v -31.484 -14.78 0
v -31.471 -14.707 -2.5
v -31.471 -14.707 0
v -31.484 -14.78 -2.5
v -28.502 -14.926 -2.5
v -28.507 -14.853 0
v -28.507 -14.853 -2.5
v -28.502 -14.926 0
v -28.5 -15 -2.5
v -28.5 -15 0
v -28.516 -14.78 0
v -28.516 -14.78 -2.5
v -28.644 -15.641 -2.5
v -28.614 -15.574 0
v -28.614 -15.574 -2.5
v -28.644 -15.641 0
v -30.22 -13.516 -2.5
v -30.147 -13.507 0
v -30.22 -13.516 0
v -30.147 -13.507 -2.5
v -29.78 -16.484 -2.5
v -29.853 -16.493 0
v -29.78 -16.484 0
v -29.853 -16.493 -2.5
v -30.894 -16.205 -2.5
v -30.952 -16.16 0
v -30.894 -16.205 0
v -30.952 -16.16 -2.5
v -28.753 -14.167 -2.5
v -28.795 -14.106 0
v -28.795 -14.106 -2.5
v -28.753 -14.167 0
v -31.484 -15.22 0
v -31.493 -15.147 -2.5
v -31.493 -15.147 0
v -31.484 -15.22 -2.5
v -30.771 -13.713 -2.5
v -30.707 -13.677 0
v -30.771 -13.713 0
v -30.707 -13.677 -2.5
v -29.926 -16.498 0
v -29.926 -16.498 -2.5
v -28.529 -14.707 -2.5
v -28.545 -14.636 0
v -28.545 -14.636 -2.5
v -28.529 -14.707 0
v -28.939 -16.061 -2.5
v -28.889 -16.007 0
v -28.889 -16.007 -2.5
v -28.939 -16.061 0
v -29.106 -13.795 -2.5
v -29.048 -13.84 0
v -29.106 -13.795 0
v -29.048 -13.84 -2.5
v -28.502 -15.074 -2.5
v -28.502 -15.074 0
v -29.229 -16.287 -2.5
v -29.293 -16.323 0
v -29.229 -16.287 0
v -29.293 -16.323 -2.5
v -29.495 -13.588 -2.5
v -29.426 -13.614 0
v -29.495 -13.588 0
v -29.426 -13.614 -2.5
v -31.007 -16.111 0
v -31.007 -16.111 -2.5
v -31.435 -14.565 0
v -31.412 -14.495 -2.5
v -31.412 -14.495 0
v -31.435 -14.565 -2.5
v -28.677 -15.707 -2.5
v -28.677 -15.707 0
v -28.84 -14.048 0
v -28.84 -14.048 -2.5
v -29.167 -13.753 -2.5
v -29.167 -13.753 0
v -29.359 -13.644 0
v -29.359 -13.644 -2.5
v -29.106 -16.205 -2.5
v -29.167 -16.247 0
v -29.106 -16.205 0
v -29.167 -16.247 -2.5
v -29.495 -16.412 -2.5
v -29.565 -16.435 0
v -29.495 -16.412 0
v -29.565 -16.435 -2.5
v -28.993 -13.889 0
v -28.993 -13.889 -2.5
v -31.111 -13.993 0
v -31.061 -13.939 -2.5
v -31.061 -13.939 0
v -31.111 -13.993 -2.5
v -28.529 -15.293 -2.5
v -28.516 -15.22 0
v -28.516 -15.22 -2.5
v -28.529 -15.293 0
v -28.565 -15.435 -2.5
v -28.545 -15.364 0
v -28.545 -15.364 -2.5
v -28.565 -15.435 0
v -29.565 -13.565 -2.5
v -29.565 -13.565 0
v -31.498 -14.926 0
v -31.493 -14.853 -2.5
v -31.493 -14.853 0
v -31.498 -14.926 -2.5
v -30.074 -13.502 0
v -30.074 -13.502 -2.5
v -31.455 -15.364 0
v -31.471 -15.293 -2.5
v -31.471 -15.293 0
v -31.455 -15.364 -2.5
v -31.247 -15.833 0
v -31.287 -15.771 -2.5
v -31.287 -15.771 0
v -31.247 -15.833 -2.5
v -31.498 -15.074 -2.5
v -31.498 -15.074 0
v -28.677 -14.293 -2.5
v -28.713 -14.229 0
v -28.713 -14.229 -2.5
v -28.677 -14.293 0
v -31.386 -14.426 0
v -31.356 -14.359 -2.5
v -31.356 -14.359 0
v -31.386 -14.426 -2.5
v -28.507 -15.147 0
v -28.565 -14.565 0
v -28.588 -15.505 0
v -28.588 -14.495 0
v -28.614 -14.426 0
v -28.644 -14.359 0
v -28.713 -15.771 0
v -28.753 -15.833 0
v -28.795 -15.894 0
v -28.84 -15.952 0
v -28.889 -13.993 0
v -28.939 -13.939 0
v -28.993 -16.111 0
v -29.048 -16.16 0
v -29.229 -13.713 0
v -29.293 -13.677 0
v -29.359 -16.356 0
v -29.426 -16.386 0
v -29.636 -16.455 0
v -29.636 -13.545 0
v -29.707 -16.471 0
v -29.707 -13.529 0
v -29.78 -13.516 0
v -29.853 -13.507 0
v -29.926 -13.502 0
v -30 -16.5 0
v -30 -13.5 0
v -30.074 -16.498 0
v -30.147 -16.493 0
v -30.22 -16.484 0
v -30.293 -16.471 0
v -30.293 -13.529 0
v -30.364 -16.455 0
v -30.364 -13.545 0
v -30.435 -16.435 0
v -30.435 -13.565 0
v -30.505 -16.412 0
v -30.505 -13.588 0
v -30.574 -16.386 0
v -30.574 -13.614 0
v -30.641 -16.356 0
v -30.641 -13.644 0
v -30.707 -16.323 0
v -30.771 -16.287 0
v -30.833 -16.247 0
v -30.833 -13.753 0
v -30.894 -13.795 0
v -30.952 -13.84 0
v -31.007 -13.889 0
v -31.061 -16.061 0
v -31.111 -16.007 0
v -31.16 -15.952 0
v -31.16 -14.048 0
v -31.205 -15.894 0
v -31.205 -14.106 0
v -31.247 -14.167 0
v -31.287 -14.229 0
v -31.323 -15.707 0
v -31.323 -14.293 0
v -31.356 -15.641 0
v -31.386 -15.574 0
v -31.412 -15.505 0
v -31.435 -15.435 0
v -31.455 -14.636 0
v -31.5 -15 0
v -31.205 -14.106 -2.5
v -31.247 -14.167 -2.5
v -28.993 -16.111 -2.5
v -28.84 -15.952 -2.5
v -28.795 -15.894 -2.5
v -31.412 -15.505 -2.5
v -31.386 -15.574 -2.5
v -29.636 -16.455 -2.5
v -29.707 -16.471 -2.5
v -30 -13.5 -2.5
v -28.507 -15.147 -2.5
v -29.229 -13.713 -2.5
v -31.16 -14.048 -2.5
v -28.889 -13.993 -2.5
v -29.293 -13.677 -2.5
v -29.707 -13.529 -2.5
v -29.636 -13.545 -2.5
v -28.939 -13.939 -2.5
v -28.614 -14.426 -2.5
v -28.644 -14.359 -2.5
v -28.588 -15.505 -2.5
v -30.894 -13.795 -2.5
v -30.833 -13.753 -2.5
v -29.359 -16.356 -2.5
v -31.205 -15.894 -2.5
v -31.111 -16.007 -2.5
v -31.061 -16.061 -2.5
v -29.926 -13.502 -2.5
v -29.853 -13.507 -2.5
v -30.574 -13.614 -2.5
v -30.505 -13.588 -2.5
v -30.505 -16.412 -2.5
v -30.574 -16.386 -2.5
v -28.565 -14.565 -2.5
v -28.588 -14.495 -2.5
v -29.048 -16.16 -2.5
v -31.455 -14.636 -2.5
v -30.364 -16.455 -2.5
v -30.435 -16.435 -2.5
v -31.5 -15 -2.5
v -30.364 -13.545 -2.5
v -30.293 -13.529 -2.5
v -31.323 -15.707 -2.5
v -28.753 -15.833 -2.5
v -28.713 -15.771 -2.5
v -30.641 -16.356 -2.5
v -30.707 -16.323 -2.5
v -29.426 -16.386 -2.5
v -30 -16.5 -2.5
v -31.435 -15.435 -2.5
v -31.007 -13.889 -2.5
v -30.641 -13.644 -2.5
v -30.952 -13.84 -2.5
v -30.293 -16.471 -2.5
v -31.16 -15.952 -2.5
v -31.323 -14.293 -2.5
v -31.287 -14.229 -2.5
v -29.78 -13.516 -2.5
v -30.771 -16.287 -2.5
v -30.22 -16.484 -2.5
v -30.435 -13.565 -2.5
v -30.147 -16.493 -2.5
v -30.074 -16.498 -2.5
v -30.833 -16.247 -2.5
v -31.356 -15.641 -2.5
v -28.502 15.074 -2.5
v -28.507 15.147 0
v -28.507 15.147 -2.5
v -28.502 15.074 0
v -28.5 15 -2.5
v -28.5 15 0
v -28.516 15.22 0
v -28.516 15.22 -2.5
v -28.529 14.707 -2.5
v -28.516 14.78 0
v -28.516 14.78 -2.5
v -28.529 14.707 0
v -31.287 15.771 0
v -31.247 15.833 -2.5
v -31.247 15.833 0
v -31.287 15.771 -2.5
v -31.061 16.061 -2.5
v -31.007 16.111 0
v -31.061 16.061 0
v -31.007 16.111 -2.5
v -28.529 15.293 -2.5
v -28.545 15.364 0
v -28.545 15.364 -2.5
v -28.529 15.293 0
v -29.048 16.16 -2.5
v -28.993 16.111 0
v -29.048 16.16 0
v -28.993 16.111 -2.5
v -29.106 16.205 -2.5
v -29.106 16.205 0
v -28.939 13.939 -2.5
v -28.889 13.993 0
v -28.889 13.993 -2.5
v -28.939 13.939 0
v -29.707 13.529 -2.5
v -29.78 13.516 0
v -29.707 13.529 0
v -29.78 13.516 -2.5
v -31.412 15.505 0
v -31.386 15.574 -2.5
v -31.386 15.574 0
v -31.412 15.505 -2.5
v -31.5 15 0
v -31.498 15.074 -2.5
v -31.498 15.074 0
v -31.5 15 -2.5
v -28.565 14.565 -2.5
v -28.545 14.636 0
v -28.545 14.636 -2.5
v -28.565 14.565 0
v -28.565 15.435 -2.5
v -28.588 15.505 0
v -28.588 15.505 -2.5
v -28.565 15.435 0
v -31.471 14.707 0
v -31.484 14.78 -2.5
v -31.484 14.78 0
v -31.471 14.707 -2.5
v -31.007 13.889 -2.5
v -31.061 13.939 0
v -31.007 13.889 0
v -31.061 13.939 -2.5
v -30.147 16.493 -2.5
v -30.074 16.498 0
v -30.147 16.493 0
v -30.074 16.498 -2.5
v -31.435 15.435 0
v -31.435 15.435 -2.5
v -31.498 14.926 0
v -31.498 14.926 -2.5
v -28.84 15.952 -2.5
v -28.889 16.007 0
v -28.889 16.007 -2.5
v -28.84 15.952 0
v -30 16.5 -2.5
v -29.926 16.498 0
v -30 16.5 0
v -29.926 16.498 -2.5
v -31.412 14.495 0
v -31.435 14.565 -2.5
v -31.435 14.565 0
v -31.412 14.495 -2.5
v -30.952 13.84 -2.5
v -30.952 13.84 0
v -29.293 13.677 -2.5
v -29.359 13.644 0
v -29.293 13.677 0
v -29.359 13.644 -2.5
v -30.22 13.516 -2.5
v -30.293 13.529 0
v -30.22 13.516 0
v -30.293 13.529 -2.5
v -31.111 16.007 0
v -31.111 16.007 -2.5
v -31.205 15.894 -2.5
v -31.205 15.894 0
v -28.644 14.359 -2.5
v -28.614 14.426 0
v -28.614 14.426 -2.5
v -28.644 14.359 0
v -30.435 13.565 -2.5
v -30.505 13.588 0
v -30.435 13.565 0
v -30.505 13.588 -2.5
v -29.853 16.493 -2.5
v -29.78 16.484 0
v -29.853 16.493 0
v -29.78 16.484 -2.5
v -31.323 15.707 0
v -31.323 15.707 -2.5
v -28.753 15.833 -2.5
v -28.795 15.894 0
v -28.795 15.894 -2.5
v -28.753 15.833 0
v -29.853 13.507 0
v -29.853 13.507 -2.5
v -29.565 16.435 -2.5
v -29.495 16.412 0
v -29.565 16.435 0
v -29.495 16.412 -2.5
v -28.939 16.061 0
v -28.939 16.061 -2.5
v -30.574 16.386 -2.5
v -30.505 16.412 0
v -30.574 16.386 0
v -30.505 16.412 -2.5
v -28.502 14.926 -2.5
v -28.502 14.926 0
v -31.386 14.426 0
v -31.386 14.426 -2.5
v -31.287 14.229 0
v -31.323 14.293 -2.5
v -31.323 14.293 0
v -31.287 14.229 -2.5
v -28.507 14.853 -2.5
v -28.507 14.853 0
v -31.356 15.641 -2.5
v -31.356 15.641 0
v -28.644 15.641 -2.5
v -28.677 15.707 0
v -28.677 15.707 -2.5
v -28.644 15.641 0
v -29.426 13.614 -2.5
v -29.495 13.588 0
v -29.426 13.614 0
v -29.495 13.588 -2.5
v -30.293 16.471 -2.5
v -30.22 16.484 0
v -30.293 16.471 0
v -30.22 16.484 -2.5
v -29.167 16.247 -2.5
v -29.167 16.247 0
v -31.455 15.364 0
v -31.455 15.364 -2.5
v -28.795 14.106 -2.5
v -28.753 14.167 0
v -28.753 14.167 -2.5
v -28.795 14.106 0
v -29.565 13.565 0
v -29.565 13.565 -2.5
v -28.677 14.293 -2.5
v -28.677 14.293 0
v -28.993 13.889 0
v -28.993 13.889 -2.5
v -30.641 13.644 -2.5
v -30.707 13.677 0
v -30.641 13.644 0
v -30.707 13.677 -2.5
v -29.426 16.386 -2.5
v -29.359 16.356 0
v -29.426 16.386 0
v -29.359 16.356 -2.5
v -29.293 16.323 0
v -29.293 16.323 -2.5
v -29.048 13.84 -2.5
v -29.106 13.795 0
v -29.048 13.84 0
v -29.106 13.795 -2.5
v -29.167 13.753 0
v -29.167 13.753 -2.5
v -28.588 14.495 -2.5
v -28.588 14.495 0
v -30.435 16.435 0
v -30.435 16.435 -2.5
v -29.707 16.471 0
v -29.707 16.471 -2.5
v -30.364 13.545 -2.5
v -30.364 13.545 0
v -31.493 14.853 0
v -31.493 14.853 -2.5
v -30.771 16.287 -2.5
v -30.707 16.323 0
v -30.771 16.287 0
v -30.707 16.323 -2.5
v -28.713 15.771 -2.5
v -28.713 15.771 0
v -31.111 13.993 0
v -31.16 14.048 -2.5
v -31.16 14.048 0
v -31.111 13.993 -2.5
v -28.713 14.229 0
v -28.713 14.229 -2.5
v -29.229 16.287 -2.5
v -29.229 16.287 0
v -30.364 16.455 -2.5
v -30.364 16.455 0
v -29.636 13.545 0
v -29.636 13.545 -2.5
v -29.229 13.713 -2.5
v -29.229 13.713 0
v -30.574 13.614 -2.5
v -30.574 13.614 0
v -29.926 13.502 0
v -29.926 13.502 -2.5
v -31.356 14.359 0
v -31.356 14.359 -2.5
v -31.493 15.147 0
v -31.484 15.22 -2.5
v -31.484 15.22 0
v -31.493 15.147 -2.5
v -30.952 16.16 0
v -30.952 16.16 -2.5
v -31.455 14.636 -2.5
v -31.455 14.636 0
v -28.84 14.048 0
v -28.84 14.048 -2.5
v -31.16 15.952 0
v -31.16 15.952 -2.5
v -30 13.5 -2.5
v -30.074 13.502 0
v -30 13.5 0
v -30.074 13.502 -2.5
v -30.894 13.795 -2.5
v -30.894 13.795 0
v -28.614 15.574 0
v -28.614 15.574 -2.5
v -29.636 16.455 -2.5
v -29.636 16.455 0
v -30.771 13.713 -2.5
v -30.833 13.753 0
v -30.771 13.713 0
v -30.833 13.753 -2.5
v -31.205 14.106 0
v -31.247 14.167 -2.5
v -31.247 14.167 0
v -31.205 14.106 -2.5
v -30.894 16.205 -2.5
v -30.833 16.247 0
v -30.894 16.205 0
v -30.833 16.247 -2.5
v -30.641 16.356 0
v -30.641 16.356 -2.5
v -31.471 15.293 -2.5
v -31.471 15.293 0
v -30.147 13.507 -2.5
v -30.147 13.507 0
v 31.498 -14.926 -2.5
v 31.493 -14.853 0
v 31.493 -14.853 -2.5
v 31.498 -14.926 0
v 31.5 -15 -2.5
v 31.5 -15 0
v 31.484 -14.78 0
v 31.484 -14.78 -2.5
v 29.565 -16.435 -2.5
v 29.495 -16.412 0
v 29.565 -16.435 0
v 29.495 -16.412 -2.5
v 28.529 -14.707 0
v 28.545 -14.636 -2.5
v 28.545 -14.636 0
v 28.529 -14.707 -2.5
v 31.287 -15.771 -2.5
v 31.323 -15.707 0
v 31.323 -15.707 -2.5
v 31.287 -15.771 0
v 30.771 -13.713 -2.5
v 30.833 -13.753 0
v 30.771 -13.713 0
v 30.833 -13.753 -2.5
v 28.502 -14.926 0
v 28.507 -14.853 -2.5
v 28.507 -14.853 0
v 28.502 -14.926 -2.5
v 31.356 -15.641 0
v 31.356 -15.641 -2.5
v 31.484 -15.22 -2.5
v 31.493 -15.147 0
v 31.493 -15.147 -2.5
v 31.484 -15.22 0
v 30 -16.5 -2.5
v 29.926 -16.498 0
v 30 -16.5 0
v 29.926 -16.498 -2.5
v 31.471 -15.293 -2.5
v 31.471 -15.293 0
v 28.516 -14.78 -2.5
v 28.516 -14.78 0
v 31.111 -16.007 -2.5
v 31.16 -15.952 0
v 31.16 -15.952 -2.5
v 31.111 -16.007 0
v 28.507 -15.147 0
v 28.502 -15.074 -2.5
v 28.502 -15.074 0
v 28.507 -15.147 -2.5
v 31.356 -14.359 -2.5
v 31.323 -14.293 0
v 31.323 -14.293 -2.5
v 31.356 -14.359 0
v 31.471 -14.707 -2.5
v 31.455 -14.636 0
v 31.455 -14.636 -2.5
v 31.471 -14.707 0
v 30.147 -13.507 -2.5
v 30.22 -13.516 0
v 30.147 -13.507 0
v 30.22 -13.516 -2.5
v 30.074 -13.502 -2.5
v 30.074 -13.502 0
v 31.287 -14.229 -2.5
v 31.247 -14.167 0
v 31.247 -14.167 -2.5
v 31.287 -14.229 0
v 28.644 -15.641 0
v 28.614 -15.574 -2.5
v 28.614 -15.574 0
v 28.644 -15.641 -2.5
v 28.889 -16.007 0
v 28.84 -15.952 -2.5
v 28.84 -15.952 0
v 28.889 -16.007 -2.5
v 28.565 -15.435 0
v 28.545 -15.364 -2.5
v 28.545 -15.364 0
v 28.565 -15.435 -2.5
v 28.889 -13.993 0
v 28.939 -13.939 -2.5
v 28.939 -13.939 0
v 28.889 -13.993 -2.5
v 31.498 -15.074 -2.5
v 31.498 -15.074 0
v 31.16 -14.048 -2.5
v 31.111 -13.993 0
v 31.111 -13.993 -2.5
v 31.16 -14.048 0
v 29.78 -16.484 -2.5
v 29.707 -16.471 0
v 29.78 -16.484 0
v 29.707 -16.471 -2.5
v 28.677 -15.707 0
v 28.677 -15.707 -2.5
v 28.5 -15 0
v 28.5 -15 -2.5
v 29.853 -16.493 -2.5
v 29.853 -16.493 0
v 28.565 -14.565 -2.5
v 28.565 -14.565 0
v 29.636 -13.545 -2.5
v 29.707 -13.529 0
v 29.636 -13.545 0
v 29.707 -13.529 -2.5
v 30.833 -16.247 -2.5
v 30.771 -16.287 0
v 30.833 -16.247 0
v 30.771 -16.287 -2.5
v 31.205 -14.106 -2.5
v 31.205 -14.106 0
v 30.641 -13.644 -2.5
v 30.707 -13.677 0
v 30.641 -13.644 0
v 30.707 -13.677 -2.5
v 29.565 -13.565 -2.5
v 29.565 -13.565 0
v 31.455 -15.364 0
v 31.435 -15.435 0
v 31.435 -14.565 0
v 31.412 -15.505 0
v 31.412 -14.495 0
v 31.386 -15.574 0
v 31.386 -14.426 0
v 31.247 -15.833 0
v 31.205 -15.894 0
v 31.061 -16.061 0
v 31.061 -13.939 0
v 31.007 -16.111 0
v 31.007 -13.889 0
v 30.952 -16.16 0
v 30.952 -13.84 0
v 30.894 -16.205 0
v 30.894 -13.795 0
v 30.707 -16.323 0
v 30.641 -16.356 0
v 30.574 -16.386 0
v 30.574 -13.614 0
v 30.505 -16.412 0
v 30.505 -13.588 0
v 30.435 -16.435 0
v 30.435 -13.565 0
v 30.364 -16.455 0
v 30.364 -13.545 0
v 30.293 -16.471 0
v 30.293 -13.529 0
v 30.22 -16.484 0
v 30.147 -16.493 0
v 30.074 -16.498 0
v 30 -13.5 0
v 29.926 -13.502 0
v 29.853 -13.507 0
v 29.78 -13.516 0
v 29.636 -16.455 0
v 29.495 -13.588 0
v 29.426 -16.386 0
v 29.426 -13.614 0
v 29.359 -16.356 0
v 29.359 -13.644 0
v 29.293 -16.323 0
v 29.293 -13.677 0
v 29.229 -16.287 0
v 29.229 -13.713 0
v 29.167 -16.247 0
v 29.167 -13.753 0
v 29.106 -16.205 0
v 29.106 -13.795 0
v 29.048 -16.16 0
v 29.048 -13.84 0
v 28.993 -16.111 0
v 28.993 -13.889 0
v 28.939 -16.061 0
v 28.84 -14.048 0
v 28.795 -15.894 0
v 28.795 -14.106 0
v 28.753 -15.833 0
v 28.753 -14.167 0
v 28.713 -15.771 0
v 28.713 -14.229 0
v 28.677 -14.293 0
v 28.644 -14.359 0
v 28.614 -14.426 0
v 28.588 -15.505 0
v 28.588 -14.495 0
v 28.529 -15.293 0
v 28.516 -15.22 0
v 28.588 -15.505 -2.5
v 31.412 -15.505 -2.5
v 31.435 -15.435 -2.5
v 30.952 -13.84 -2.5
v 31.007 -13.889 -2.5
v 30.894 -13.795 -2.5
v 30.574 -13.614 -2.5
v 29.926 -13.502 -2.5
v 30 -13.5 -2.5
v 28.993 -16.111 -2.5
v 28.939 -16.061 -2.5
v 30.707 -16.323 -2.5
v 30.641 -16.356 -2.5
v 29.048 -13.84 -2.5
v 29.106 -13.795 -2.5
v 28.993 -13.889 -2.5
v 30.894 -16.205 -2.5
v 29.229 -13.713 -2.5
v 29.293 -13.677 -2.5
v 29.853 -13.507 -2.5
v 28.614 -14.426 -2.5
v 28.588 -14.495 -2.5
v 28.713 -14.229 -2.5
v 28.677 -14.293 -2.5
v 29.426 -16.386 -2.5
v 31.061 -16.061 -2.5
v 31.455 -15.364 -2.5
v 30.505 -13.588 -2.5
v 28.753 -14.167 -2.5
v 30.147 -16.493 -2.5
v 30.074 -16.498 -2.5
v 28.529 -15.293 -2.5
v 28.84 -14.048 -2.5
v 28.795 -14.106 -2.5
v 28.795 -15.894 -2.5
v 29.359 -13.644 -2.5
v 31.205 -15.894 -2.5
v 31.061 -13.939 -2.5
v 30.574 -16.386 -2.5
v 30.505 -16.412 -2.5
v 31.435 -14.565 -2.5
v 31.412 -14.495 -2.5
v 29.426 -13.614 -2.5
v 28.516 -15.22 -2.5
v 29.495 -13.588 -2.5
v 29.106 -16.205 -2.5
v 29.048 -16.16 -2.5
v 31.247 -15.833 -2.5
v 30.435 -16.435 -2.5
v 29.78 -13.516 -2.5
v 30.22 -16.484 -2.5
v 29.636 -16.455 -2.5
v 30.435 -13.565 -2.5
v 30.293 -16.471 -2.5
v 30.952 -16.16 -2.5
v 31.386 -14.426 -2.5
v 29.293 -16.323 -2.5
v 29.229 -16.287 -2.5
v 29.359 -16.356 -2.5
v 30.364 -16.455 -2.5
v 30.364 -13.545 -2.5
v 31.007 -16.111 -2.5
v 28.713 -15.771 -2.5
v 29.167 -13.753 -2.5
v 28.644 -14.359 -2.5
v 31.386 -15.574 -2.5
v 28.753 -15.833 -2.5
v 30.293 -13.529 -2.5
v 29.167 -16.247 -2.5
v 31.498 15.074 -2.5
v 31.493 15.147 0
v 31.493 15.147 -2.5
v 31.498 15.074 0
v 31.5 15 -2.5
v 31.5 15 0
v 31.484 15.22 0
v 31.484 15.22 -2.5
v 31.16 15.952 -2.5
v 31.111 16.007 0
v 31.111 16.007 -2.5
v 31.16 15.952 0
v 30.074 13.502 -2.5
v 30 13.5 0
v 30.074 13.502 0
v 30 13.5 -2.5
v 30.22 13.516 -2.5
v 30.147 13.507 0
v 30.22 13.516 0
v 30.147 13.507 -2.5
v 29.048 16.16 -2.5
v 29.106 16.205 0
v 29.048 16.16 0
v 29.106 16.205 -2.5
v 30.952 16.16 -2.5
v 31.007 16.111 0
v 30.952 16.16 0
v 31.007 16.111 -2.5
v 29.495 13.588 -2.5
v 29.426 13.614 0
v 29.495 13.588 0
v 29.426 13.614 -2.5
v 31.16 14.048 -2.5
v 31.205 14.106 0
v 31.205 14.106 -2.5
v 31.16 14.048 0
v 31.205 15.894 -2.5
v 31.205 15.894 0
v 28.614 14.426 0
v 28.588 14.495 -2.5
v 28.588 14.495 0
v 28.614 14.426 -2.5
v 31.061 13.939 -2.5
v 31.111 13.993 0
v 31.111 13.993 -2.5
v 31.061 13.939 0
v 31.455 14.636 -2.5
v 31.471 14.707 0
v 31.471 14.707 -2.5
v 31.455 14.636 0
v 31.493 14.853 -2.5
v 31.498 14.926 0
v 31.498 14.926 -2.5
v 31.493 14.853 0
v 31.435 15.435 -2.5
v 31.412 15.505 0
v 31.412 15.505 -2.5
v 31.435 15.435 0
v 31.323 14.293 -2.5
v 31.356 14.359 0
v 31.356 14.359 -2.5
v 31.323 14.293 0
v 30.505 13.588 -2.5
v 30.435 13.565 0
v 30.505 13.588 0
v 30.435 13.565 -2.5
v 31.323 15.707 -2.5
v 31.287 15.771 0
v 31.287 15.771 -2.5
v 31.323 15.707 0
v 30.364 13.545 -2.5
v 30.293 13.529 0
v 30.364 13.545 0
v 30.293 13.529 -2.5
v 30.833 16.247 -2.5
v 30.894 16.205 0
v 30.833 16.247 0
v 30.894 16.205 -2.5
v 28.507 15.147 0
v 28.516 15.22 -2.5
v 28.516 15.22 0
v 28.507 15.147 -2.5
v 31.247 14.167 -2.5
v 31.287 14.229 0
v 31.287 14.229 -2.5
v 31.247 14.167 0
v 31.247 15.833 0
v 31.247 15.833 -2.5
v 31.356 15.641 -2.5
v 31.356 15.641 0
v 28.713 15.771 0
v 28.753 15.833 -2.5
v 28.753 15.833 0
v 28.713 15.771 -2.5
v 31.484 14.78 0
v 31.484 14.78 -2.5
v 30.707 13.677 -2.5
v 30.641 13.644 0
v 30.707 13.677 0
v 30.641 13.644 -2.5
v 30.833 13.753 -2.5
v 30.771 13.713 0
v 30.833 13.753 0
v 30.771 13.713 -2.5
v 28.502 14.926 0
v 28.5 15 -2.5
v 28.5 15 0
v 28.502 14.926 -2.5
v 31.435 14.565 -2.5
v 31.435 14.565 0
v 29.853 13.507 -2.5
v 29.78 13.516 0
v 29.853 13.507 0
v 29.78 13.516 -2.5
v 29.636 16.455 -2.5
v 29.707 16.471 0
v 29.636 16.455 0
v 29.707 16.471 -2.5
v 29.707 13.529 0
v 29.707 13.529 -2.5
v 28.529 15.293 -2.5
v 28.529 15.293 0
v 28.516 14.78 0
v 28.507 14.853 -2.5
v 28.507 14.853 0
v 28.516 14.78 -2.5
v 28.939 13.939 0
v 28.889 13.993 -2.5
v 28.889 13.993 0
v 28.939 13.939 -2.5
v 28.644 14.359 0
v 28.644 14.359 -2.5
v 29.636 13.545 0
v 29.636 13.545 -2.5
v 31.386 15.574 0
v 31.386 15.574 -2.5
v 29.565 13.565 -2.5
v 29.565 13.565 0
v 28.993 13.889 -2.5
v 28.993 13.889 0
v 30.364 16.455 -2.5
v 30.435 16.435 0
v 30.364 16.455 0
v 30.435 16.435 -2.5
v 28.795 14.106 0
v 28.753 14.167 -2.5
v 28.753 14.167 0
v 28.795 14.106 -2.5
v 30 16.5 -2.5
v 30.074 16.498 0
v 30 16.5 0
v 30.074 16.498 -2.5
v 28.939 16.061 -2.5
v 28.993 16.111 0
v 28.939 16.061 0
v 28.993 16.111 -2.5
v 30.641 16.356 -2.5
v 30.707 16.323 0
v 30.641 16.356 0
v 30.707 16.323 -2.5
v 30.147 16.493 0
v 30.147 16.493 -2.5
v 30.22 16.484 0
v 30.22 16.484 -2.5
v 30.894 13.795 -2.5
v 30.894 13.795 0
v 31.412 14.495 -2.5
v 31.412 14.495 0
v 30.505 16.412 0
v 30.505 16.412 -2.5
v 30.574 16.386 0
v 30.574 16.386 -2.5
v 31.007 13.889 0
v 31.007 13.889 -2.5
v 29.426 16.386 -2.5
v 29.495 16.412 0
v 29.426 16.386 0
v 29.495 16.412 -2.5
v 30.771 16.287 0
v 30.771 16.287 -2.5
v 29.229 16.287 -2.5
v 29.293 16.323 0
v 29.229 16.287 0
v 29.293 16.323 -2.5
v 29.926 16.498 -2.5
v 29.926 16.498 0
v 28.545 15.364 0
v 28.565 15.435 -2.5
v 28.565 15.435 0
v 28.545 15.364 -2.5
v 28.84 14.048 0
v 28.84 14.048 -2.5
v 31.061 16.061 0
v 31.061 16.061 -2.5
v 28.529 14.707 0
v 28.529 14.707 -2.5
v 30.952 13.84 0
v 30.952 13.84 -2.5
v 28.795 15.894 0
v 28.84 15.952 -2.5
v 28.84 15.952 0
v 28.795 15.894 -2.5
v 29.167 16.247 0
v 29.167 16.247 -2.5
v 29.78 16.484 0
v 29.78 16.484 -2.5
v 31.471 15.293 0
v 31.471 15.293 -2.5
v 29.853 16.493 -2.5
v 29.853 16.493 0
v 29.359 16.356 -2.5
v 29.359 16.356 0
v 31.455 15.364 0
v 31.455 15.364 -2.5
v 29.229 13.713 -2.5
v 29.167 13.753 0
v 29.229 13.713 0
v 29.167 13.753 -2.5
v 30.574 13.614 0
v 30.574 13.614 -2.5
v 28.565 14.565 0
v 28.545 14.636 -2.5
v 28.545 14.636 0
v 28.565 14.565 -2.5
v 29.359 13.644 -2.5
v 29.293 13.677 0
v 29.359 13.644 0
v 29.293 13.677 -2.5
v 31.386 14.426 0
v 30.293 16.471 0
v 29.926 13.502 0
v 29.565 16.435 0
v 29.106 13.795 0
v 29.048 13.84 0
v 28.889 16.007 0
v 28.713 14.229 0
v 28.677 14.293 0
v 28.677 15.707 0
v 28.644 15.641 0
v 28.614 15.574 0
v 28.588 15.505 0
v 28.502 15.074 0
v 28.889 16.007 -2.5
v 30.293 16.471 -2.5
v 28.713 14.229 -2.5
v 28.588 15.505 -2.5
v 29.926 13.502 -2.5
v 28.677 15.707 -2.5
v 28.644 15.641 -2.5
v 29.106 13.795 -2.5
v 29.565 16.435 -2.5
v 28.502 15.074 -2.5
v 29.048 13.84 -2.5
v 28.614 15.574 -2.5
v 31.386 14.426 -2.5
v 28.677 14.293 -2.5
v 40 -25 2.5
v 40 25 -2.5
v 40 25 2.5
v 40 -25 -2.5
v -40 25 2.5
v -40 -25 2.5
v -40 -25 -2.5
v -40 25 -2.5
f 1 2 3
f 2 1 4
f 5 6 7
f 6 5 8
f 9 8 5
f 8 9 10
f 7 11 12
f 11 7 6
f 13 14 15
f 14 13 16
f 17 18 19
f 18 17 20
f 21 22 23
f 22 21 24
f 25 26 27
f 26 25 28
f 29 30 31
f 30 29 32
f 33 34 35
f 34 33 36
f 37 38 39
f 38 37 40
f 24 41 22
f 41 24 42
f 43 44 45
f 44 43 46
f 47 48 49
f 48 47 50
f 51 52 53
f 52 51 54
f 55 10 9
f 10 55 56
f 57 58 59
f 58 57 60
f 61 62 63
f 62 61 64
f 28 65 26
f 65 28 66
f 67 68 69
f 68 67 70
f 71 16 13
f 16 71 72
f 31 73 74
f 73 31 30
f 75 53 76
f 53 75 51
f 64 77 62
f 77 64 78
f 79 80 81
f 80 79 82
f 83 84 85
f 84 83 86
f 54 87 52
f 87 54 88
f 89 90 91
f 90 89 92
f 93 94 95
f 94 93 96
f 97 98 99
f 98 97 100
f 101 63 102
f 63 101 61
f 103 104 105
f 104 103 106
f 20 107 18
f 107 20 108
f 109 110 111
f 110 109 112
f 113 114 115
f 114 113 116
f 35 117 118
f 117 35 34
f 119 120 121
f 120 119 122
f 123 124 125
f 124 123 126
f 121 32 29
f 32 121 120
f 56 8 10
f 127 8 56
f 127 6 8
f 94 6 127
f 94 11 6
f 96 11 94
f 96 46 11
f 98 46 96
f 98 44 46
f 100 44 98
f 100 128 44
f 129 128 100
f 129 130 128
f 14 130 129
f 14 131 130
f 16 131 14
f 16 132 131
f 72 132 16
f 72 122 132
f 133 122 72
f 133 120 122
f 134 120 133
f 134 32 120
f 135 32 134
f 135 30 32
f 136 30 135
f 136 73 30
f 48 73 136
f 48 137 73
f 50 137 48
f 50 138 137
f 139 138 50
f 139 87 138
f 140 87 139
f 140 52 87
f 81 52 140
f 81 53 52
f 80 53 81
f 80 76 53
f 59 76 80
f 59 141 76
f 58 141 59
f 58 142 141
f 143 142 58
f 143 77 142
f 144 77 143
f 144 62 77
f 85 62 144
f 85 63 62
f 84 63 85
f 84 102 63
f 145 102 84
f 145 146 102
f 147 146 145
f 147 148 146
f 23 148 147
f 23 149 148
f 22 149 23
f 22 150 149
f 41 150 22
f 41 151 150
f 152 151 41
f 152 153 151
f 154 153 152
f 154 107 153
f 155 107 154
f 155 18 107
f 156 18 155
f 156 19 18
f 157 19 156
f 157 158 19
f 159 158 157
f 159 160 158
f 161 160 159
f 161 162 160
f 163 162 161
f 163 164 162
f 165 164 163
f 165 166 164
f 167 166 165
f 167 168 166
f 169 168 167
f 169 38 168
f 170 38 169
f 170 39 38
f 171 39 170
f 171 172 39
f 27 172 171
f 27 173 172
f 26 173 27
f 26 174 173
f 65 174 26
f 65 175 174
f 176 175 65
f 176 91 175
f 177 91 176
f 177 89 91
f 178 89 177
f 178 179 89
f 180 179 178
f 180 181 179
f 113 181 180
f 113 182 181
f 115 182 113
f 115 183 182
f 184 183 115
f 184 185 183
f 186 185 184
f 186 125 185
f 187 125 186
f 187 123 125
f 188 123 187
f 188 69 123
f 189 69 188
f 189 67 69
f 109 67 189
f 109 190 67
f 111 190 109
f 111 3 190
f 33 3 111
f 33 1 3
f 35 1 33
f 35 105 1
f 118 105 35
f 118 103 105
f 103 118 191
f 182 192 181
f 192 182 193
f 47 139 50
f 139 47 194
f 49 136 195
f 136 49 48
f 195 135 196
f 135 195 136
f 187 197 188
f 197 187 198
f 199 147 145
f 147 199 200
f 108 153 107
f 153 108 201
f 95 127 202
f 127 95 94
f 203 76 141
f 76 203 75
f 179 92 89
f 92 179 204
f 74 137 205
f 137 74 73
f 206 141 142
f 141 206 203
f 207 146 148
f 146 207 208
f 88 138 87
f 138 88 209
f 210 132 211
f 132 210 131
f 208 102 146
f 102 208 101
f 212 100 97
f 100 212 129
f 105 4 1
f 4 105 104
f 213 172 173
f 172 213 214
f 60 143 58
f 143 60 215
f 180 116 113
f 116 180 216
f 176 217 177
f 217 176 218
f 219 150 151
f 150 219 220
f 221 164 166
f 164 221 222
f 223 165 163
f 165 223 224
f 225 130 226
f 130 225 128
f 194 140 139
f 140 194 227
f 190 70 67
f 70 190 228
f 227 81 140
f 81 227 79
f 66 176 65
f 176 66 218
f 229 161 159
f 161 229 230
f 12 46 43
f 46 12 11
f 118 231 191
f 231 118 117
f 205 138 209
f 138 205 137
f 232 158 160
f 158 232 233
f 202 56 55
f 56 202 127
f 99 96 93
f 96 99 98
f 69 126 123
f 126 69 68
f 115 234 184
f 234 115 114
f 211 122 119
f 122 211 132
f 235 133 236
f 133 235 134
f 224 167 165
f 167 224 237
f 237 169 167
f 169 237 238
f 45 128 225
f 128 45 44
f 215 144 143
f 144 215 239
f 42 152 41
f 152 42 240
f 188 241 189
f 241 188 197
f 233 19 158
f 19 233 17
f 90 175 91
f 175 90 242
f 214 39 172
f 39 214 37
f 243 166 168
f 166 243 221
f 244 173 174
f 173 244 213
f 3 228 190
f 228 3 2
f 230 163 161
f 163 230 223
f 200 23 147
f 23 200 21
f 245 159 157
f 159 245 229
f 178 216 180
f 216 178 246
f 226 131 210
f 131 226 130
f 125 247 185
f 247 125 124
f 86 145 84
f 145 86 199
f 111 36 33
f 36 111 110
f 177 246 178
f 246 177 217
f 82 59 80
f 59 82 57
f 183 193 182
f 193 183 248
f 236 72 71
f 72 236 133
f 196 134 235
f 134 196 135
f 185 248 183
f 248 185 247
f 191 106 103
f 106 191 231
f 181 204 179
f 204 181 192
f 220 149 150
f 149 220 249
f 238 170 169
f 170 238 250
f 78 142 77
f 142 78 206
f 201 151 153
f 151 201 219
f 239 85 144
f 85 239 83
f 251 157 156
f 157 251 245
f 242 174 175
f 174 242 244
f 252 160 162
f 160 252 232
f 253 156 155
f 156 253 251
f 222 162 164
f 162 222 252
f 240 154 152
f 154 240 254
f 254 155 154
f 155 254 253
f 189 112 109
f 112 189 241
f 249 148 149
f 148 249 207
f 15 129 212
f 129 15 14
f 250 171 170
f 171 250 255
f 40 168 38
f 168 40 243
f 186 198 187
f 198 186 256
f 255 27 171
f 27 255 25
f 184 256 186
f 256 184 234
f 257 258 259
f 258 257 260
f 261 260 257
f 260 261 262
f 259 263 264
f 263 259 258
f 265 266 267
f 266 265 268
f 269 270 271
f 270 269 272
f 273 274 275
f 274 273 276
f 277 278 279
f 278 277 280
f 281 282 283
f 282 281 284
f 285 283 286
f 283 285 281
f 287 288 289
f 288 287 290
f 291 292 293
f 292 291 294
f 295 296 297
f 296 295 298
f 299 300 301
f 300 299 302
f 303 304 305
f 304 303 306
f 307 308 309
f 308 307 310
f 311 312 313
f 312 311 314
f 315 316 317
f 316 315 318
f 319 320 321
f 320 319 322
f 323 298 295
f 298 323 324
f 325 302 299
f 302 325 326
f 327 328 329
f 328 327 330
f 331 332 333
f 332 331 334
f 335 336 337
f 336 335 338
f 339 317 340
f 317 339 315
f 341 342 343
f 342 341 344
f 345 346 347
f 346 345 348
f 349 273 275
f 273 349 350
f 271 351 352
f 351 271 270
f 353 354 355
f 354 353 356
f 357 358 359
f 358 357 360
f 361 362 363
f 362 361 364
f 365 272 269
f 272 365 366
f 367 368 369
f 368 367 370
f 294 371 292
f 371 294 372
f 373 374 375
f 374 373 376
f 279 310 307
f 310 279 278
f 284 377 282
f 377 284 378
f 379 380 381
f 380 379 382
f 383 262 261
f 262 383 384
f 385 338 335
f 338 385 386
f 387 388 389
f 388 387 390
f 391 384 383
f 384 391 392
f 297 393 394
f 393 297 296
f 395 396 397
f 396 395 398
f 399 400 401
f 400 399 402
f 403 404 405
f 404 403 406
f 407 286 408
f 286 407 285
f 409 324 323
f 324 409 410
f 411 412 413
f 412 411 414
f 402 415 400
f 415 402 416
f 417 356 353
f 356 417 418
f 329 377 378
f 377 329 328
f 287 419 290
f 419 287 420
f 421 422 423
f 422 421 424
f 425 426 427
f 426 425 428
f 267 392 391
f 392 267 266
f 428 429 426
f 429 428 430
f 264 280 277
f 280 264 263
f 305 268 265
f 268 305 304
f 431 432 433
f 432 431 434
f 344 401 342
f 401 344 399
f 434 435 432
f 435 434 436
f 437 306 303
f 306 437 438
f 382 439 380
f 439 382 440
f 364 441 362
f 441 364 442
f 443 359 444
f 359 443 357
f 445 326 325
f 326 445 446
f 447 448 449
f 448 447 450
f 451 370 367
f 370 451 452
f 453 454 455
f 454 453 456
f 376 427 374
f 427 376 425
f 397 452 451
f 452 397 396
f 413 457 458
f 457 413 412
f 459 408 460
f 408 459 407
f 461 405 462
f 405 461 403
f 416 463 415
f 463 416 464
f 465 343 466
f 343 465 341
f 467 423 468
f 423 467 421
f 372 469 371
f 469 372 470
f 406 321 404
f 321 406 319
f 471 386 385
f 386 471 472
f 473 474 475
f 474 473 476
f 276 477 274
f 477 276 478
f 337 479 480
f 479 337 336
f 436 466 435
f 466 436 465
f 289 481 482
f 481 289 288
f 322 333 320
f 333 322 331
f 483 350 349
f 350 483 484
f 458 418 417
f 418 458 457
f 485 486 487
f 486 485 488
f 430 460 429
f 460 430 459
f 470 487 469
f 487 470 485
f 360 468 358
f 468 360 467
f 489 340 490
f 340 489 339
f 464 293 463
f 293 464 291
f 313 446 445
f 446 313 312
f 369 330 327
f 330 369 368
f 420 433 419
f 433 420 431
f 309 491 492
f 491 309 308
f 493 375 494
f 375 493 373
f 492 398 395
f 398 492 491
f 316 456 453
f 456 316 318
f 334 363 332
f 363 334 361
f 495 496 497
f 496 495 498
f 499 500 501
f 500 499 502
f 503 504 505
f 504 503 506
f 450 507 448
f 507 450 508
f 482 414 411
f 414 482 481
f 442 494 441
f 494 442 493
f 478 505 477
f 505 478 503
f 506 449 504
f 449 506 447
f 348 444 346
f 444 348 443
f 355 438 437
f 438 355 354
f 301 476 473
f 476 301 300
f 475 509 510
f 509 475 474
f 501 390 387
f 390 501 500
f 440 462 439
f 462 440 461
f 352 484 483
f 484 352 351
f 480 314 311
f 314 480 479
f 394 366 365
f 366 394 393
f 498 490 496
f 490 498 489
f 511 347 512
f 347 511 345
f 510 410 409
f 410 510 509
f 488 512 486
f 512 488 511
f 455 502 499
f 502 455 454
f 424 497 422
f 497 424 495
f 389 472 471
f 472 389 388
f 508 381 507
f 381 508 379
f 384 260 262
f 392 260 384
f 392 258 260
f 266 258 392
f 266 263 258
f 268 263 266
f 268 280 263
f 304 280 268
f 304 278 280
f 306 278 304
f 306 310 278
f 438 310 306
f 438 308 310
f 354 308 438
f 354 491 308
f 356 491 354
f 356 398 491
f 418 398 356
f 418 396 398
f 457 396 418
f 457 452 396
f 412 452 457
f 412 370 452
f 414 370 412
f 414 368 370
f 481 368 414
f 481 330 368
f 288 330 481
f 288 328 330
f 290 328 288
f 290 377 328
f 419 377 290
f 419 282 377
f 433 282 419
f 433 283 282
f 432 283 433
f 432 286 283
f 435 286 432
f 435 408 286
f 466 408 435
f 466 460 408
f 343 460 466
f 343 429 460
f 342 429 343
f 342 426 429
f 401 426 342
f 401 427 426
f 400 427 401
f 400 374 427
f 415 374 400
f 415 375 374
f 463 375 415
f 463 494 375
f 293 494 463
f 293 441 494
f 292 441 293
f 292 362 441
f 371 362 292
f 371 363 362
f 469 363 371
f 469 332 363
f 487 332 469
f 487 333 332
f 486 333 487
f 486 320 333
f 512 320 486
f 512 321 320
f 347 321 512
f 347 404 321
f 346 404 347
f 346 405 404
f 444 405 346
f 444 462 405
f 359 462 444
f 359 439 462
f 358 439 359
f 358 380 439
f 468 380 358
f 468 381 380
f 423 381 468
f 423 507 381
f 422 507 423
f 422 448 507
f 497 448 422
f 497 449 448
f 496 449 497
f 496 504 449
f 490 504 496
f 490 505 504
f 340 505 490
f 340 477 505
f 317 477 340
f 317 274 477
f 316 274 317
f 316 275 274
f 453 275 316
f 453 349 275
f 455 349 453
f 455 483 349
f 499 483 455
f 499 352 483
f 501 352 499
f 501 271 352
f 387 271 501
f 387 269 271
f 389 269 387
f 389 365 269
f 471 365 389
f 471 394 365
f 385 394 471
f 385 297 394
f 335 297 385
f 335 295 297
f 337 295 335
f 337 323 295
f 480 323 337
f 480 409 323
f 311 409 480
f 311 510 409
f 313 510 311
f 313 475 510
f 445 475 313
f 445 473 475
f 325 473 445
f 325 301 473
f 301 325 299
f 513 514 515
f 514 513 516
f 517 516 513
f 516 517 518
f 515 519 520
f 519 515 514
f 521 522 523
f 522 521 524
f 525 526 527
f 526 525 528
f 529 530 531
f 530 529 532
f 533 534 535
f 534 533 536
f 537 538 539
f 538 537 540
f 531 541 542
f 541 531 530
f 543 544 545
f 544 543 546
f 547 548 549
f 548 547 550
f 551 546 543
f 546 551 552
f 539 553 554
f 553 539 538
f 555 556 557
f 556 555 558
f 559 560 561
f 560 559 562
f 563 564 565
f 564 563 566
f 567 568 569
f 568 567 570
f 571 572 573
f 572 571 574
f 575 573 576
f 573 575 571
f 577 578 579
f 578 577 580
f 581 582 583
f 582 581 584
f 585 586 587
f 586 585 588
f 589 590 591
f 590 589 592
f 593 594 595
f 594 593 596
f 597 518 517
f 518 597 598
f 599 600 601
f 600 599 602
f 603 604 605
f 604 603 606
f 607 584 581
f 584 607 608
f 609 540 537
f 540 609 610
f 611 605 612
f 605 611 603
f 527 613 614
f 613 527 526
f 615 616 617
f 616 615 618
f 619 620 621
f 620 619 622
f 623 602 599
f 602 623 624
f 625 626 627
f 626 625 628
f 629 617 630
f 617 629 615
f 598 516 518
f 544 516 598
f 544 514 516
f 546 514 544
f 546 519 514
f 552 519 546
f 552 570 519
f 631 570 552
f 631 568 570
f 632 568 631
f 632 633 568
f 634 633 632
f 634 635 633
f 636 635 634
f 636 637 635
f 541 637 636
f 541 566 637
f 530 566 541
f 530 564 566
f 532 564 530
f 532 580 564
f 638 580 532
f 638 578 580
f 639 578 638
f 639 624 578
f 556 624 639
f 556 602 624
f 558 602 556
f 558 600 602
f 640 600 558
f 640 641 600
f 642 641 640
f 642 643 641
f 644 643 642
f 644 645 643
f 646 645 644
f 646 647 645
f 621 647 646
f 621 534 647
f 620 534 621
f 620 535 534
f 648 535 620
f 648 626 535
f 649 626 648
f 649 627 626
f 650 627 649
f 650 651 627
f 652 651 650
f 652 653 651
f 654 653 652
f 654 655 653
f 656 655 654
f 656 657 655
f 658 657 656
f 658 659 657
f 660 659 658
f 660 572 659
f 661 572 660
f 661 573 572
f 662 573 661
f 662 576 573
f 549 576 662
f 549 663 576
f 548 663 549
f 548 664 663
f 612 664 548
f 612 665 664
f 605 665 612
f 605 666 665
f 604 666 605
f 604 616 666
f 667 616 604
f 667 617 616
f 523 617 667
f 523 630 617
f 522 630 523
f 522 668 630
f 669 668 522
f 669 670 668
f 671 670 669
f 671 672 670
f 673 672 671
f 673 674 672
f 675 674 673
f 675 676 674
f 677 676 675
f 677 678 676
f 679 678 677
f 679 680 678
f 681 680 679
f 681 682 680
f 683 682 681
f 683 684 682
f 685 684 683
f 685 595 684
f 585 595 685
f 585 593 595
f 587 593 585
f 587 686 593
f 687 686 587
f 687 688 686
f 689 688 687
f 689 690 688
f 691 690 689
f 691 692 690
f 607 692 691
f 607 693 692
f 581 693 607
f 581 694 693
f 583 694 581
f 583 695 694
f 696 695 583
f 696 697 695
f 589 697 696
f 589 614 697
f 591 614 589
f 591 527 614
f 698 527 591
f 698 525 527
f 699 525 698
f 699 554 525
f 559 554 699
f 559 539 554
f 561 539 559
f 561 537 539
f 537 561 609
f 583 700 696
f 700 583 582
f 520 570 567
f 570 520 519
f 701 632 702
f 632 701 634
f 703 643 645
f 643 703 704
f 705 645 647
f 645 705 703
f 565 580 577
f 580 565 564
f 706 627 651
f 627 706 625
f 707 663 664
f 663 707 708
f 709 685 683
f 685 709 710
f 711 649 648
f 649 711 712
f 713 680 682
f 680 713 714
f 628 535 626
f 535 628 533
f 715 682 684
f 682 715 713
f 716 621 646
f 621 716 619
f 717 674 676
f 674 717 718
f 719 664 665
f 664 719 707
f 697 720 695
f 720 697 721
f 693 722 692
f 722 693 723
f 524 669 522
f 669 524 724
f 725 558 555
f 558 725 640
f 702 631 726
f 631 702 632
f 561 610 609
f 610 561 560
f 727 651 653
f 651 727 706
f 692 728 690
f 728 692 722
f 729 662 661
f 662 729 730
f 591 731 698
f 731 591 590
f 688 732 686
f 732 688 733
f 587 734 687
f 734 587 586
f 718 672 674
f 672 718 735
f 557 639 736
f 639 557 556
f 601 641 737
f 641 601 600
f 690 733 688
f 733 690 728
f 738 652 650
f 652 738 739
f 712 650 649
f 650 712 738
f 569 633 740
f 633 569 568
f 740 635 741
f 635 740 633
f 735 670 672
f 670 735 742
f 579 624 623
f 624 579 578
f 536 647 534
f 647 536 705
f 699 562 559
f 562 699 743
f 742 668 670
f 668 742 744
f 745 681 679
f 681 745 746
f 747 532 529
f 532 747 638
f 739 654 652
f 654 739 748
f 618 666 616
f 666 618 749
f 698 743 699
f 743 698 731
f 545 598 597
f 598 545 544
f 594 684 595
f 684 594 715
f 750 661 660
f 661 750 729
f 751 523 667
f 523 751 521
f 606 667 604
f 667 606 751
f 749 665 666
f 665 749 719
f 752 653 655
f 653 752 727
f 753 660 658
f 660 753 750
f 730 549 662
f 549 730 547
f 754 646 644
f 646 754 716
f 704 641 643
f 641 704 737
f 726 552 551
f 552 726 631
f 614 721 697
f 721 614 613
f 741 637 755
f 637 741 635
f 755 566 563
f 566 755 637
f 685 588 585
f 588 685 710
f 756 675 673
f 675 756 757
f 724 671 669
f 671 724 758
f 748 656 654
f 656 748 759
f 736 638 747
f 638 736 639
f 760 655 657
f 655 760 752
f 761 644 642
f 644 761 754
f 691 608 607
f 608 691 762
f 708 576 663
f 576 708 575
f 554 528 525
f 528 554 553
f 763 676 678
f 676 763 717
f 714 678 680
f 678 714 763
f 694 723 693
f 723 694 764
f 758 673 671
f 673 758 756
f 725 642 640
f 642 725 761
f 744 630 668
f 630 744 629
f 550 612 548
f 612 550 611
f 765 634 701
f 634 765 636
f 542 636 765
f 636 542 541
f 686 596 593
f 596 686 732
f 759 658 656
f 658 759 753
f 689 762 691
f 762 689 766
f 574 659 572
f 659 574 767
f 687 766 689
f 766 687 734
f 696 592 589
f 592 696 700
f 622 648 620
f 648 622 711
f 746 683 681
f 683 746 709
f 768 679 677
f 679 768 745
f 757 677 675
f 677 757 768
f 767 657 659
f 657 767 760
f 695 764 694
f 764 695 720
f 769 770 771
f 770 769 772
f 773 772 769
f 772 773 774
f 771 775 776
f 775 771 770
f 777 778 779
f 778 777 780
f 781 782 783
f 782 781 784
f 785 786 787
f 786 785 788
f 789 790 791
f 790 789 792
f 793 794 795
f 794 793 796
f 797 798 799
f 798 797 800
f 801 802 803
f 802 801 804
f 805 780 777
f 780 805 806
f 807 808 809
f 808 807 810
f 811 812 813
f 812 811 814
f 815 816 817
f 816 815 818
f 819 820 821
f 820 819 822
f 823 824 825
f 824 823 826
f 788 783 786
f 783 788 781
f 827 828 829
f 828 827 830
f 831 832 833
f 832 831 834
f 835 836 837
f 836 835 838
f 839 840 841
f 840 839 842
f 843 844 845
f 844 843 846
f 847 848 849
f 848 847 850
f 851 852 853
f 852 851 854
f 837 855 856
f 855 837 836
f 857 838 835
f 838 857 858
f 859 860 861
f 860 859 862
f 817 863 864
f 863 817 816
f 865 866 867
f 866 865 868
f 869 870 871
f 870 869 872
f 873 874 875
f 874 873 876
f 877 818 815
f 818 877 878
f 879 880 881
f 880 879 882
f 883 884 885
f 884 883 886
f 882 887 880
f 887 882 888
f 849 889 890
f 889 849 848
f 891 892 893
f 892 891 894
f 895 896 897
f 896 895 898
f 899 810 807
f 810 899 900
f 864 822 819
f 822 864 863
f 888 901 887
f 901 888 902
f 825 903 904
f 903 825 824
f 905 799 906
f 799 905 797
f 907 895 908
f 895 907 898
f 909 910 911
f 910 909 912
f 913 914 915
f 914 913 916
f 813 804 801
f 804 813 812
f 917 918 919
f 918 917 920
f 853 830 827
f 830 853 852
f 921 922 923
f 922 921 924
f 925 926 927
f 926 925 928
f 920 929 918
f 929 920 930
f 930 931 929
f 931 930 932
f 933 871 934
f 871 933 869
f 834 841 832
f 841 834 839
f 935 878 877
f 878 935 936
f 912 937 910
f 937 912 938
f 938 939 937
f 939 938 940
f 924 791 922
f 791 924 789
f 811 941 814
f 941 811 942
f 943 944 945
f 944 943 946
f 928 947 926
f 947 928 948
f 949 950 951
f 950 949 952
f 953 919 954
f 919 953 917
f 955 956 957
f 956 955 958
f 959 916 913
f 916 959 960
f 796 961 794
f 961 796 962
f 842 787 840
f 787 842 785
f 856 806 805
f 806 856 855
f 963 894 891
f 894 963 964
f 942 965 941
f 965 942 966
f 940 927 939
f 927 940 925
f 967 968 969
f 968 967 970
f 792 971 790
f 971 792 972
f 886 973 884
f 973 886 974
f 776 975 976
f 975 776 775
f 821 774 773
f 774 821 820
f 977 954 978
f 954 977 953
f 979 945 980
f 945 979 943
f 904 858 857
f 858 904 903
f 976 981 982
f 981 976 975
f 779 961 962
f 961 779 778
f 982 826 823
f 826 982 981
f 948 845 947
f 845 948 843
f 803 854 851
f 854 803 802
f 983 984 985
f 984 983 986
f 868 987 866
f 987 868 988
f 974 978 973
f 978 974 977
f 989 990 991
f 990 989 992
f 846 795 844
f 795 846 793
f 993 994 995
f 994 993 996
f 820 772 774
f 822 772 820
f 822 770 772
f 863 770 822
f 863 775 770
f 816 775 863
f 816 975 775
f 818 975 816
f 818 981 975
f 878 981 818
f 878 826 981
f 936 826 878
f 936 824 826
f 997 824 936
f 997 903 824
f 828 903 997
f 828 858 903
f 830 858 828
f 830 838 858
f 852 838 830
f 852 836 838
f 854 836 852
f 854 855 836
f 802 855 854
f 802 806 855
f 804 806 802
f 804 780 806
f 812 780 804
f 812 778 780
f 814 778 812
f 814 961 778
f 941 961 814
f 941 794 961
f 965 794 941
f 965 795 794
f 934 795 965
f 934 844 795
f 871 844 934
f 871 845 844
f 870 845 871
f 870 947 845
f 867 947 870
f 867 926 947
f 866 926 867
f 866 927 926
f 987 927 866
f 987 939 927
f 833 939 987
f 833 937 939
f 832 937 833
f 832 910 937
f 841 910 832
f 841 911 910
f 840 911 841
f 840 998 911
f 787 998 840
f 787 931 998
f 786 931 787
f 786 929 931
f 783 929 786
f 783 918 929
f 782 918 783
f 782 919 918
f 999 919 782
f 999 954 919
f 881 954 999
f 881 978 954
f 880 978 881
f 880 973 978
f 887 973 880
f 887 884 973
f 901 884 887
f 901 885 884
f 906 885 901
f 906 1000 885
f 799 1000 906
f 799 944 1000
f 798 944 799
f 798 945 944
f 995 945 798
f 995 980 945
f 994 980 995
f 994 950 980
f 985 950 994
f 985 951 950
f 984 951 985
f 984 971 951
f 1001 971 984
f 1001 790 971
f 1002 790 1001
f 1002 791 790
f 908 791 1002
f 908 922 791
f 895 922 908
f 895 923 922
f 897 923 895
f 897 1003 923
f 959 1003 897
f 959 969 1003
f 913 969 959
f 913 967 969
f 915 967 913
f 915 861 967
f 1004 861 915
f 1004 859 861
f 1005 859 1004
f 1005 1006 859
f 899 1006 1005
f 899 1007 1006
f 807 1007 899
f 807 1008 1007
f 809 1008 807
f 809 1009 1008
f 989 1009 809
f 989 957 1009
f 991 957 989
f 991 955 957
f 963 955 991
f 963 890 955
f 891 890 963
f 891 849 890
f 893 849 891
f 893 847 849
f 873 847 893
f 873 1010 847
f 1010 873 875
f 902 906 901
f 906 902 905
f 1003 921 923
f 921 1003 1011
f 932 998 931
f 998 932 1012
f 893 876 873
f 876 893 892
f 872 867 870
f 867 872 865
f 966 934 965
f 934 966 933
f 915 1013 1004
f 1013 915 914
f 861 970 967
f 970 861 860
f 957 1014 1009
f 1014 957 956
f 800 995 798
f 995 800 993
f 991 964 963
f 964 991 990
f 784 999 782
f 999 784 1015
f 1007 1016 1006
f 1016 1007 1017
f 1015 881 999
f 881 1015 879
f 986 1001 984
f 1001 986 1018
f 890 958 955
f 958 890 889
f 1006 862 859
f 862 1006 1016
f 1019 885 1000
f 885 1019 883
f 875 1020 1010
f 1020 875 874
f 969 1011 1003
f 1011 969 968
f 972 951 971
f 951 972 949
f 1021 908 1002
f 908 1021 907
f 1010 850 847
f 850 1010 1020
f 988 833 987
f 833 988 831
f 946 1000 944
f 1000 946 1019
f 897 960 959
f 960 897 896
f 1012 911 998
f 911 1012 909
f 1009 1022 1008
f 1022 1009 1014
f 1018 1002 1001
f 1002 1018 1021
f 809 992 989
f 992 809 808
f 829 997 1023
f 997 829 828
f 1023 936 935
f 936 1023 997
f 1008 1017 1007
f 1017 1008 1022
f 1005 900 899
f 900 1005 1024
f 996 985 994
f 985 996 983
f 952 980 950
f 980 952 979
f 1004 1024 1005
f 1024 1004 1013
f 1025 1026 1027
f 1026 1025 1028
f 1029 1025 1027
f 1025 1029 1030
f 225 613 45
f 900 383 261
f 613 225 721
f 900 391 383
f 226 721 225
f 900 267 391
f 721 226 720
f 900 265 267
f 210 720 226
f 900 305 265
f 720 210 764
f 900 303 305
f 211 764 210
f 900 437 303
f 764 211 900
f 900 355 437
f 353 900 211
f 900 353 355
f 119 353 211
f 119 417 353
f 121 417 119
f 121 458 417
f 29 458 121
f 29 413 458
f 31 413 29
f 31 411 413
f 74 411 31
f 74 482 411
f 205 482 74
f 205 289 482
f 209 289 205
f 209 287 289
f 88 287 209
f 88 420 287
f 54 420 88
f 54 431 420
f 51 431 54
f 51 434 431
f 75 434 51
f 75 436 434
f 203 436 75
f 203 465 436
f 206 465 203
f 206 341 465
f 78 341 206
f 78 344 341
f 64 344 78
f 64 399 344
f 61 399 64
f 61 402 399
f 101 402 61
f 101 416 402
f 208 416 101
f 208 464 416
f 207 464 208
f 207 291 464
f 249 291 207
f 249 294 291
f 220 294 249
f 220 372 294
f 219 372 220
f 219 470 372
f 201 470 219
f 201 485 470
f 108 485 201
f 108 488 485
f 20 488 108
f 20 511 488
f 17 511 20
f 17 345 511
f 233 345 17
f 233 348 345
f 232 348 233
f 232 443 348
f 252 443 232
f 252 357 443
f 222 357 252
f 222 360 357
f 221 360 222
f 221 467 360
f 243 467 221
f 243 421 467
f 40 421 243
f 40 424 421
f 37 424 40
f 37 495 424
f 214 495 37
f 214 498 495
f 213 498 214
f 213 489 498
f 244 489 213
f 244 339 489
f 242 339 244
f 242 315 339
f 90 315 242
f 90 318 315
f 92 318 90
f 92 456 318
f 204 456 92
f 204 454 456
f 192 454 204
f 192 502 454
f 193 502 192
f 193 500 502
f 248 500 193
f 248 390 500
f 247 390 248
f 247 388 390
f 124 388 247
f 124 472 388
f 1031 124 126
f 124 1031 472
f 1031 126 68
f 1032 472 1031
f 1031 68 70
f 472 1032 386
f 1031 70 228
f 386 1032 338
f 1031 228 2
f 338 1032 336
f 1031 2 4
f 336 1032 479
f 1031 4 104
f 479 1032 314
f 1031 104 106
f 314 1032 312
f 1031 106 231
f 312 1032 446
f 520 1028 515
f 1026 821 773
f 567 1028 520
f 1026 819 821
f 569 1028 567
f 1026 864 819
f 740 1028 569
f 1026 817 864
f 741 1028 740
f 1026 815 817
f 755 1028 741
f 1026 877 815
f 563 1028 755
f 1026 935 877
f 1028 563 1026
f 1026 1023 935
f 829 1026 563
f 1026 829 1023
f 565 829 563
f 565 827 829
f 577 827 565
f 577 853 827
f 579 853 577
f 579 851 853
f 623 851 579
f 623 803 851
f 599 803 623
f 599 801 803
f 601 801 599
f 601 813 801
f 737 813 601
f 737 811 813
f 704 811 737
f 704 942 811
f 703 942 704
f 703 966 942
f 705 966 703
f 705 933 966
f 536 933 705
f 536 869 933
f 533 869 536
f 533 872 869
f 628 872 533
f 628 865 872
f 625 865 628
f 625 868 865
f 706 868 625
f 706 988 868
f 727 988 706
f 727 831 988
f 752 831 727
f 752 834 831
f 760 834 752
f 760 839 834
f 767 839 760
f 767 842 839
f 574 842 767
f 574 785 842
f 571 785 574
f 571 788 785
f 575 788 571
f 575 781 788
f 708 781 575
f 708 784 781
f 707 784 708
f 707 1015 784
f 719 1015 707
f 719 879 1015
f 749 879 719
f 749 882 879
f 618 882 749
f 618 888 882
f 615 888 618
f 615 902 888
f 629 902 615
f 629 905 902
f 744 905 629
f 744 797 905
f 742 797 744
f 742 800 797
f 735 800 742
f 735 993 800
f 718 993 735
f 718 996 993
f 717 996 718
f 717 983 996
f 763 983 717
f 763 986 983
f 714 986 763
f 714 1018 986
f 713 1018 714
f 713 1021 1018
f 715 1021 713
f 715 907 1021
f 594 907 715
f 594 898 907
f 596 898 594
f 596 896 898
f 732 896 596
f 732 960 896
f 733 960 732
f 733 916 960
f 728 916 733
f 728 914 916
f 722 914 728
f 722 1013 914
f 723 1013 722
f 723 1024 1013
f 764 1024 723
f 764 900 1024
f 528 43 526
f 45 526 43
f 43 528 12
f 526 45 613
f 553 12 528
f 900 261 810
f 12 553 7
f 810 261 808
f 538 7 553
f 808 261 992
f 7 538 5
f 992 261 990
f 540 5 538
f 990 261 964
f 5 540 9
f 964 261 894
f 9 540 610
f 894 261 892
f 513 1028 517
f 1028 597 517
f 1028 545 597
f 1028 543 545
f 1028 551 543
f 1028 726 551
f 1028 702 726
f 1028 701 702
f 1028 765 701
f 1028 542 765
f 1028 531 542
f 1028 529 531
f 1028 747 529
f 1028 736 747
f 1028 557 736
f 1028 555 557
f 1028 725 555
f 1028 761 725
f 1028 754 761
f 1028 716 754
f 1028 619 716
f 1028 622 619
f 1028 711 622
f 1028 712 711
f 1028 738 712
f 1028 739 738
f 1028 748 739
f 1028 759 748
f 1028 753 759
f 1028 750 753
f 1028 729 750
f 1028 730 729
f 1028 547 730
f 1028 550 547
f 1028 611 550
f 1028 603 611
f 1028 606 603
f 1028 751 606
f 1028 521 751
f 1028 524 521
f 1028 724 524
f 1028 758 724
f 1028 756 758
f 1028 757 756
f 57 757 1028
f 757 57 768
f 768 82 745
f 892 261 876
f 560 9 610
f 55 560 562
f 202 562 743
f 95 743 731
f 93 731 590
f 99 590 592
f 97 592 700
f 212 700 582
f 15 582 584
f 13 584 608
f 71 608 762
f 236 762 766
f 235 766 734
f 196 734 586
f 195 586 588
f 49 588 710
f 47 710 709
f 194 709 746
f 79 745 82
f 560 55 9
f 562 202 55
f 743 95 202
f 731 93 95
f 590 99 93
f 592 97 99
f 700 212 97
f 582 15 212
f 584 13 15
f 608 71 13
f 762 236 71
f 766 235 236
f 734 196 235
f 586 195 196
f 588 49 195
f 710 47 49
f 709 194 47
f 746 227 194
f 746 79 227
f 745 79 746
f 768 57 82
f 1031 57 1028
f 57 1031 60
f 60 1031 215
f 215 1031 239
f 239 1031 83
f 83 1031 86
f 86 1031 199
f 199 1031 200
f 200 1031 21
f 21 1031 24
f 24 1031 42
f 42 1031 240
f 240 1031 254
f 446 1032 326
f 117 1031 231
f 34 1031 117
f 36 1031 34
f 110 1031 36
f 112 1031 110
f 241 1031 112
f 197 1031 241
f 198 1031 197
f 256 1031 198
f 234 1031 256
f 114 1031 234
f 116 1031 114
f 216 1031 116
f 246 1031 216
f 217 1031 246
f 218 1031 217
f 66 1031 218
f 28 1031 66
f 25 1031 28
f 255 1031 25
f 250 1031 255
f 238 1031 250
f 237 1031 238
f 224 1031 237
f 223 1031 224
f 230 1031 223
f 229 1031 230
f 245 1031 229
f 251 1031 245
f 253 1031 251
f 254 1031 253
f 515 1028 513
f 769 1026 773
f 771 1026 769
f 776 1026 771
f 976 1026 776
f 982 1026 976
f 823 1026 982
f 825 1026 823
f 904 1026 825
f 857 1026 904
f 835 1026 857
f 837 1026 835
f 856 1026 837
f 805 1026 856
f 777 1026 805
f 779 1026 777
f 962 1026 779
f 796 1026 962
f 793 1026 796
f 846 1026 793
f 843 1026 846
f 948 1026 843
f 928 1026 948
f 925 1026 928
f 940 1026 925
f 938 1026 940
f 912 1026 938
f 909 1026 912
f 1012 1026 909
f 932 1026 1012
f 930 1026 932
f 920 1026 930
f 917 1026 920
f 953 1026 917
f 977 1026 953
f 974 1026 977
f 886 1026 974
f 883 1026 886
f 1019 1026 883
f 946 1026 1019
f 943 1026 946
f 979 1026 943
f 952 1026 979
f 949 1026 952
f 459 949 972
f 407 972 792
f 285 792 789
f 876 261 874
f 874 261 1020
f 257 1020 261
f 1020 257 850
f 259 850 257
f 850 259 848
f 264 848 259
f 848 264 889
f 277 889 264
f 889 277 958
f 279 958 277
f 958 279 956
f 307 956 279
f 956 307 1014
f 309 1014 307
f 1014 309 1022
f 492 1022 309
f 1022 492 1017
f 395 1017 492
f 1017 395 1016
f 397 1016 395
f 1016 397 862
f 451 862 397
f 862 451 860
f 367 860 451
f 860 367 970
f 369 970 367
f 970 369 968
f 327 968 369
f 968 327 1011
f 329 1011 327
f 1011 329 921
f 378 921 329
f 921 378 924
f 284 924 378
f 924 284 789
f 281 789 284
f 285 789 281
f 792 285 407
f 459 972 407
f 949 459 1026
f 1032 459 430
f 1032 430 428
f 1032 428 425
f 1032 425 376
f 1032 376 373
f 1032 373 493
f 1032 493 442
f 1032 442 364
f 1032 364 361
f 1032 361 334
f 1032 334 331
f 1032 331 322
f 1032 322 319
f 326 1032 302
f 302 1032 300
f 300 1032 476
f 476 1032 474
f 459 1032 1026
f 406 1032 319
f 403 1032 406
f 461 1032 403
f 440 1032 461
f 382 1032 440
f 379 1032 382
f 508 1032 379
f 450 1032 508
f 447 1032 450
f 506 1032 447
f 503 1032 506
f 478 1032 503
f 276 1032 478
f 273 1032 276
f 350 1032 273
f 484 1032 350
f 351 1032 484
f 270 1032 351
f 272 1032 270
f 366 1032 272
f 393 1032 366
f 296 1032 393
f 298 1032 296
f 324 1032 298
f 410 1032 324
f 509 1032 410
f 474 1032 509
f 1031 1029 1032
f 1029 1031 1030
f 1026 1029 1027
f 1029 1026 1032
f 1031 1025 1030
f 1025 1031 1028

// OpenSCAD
// Sensor Mount for PVC Pipe
// Engineer: Gemini
// Date: 2025-11-15
//
// ========== REVISION HIGHLIGHTS ==========
// - NEW: Designed to clamp onto a standard 4-inch PVC pipe.
// - NEW: Flat mounting surface for sensors.
// - NEW: Screw holes for secure attachment.
// =========================================

// ========== CORE PARAMETERS ==========

// [Dimensions]
pipe_diameter = 101.6; // 4 inches
mount_width = 50;
mount_length = 80;
mount_thickness = 5;
clamp_wall_thickness = 5;
screw_hole_diameter = 3;

$fn = 128;

// ========== MODULES ==========

module sensor_mount() {
    difference() {
        // Main body
        cube([mount_length, mount_width, mount_thickness], center = true);

        // Cutout for PVC pipe
        translate([0, 0, -pipe_diameter / 2]) {
            cylinder(h = mount_length, d = pipe_diameter, center = true);
        }

        // Screw holes
        for (x = [-mount_length / 2 + 10, mount_length / 2 - 10]) {
            for (y = [-mount_width / 2 + 10, mount_width / 2 - 10]) {
                translate([x, y, -mount_thickness]) {
                    cylinder(h = mount_thickness * 2, d = screw_hole_diameter, center = true);
                }
            }
        }
    }
}

// ========== ASSEMBLY CALL ==========
sensor_mount();
